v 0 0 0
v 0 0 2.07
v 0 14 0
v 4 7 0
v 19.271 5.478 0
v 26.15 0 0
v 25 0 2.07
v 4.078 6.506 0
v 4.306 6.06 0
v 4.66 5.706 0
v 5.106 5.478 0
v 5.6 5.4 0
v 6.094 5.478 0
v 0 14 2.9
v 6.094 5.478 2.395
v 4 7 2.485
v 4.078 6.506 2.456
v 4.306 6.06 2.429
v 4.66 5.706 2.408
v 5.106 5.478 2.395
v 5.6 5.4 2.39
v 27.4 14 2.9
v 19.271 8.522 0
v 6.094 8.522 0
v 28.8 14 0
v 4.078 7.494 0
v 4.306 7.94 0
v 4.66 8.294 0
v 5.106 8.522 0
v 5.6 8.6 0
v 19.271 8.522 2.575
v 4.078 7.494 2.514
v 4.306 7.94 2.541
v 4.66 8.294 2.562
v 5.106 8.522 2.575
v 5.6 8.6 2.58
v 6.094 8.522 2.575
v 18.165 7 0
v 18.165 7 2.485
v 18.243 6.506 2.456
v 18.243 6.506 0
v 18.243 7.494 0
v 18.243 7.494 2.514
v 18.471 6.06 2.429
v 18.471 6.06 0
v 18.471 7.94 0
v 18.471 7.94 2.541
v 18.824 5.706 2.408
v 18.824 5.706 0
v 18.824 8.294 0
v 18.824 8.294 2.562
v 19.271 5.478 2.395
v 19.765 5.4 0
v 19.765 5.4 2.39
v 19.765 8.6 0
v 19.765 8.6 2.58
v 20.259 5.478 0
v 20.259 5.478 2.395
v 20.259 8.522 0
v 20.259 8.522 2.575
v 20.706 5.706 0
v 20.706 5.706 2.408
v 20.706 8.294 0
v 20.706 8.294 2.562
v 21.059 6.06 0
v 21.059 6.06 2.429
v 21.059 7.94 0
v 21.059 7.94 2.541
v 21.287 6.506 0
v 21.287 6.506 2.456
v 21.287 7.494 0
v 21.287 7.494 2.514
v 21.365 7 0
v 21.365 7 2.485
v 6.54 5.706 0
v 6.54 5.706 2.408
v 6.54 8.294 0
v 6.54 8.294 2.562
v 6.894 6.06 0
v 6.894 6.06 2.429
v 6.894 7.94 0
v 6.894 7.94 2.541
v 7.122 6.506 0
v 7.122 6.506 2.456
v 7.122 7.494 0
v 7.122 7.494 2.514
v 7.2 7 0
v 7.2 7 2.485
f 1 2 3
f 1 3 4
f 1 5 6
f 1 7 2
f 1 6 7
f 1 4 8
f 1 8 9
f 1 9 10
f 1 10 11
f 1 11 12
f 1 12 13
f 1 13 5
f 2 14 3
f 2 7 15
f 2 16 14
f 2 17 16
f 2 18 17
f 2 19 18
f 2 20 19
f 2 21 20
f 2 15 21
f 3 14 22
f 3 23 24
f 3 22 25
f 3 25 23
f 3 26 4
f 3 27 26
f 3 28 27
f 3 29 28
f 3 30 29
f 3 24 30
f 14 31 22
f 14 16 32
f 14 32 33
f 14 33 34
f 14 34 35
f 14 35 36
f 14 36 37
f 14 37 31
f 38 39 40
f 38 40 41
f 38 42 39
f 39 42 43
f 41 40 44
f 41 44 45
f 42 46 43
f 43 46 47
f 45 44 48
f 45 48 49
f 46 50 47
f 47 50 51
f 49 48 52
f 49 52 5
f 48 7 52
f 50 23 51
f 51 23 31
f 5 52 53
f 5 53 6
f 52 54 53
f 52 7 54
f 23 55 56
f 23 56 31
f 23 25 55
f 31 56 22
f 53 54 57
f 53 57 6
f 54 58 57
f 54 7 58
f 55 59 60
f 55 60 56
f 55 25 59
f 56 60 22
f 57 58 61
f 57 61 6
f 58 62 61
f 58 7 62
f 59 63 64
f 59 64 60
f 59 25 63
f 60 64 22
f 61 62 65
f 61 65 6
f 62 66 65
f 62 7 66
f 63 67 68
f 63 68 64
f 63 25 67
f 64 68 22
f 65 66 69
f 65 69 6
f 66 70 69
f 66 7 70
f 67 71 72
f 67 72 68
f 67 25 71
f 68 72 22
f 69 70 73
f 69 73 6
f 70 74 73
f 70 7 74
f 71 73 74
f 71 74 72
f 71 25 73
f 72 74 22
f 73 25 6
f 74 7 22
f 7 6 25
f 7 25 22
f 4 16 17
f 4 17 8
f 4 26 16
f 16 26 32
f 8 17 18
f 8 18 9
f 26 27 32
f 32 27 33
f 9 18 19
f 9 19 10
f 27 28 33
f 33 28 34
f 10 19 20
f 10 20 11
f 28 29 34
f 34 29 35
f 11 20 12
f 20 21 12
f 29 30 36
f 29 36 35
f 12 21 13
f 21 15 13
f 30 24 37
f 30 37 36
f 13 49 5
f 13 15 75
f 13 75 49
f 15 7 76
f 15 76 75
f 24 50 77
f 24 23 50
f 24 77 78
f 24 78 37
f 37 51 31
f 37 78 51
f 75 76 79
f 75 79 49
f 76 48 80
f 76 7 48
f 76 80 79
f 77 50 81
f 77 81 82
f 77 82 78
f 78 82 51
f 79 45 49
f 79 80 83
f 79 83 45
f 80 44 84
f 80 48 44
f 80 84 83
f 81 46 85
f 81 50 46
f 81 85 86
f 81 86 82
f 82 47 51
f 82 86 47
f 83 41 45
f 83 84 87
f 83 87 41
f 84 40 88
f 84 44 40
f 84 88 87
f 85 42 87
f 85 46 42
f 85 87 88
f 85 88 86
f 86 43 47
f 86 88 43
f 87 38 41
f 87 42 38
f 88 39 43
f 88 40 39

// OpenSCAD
// file: ../parameters.scad
global_clearance = 0.5;

layer_thickness = 0.3;

//Main tube diameter - hole [mm]
main_tube_outer_diameter = 25.4;
main_tube_inner_diameter = 23.05;

// Nastavení parametrů rotoru

gliding_aggle = 14;         // tenhle úhel by se zřejmě v budoucnu měl počítat z požadované klouzavosti.

rotor_blade_AOA = 1.5;      // nastavení úhlu náběhu rotorového listu

// Rotor Auto-G2
rotor_blade_rod = true;  // generovat diru pro uhlikove tycky
rotor_blade_length = 400 - 15;   // délka rotorového listu
rotor_blade_depth = 45.5;     // hloubka rotorového listu


blade_mount_length = 30;

blade_mount_width = 17;
blade_mount_thickness = 4;
blade_mount_screw_offset = 5; // distance of first screw from rotor end

// Testovaci maly rotor

        /*
        rotor_blade_rod = false;
        rotor_blade_length = 145;   // délka rotorového listu
        rotor_blade_depth = 45.5 * (145/385);     // hloubka rotorového listu
        blade_mount_length = 20;
        blade_mount_width = 10;
        blade_mount_thickness = 4;
        */

// konec parametru pro testovaci maly rotor

rotor_height = 180;         // výška otočného kloubu rotoru nad hlavní trubkou vírníku (odhad)
rotor_blades_count = 2;
rotor_delta_angle = 12;
rotor_blade_thickness = 5.1;

rotor_blade_naca = 2412;
rotor_blade_parts_count = 3;

blade_transition_length = 10; // length of blade transition

blade_mount_screw_distance = (16.47+11.86)/2;

blade_shell_thickness = 0.5;
blade_shell_thickness_inner = 0.41;
blade_shell_thickness_wire = 0.5;
blade_infill_distance = 25;
blade_infill_overlap = 2;

//blade_rod_position = [rotor_blade_depth/4 + 5, 0, 0];
//blade_rod_position2 = [rotor_blade_depth/4 - 5, 0, 0];

//blade_rod_position = [15, 0, 0];
//blade_rod_position2 = [4, 0.3, 0];

blade_rod1_diameter = 2.58;
blade_rod2_diameter = 2.58;
blade_rod3_diameter = 2.13;

blade_rod1_position = [3.35, 0.3, 0];
blade_rod2_position = [rotor_blade_depth/4 - 4.6, 0.2, 0];
blade_rod3_position = [rotor_blade_depth/4 + 3.5, 0, 0];


rotor_head_width =  21.4;    //Rozměr 1 v nákresu
pilon_wall_thickness = 4.2;  // Rozměr 2 v nákresu
horizontal_screw_distance = 14.5;   // Rozměr 4 v nákresu
vertical_screw_distance = 12;       // rozměr 5 v nkresu
topscrew_distance_endofpilon = 5;

rotorhead_wall_thickness = 2; // sila tistenych dilu


bearing_outer_diameter = 10.2;    // Rozměr B1 v nákresu s přídavkem na toleranci otvoru
bearing_thickness = 4;        // Rozměr B2 v nákresu
//bearing_shaft_length = 19.5;    // Rozměr B3 v nákresu, Originalni hodnota 19.5
bearing_shaft_length = 20;    // Rozměr B3 v nákresu


// nastavení parametrů motoru

engine_angle = -8;
engine_diameter = 55;
engine_offset = 55;

engine_screws_radius = 15;
engine_holes_radius = (24 + 44)/4;
engine_shatf_hole_diameter = 13;

// screw length step - minimum difference in length between two types of screws
basic_screw_length = 5;

//Screw diameter and nut for M6 [mm]
M6_screw_diameter=6.5;
M6_head_diameter = 10+0.5;
M6_head_height = 6;
M6_nut_height = 4.9;
M6_nut_diameter = 11.8;
M6_nut_pocket = 10.4;

//Screw diameter and nut for M5 [mm]
M5_screw_diameter=5.5;
M5_head_height = 5;
M5_head_diameter = 13+0.5;
M5_nut_height = 4.5;
M5_nut_diameter = 9.4;
M5_nut_pocket = 8.4;

//Screw diameter and nut for M4 [mm]
M4_screw_diameter=4.5;
M4_screw_head_height = 4;
M4_nut_height = 3.2;
M4_nut_diameter = 8.4;
M4_nut_pocket = 7.5;

//Screw diameter and nut for M3 [mm]
M3_screw_diameter = 3.2;
M3_nut_height = 2.7;
M3_nut_diameter = 6.6;
M3_screw_head_height = 3;
M3_nut_pocket = 5.6;


//Screw diameter and nut for M2,5 [mm]
M2_5_screw_diameter = 2.7;
M2_5_nut_height = 2.3;
M2_5_nut_diameter = 6;
M2_5_nut_pocket = 5.1;

//Screw diameter and nut for M2 [mm]
M2_screw_diameter = 2.0;
M2_nut_height = 1.8;
M2_nut_diameter = 4.8;
M2_nut_pocket = 3.95;


blade_mount_screw = M3_screw_diameter;
blade_mount_nut = M3_nut_diameter;


//šroub servo
Servo_screw = 1.5;
Servo_nut_height = 1;
Servo_nut_diameter = 2.7;



//center_of_gravity_position = [main_pilon_position - tan(gliding_aggle)*rotor_height, 0, 0];


////podzvozek

radius_undercarriage = 25;
vzdalenost_x = tan(20) * 131;
vzdalenost_y = (131 - radius_undercarriage)/tan(79);
uhel_y = 90 - 20;
uhel_x = 90 - 79;

maximum_printable_size = 150;


////Pitotova trubice
Pitot_tube_diameter = 4.02 + 1;
Distance_hole_from_tube = 11.92;  //vzdálenost otvoru pro připevnění od samotné trubičky


////Vlečné zařízení
tow_ring_diameter = 20;
tow_ring_thickness = 5;
tow_ring_groove = 2;
tow_ring_hole_diameter = M3_screw_diameter;
// main file
include <../parameters.scad>;

module 111_1005() {
    blade_screws_distance = (16.47+11.86)/2;
    move_index = 4+blade_mount_screw/2;

    points = [
    	[0, 0, 0],
    	[26.15, 0, 0],
    	[28.8, 14, 0],
    	[0, 14, 0],
    	[0, 0, 2.07],
    	[25, 0, 2.07],
    	[27.4, 14, 2.9],
    	[0, 14, 2.9]
    ];

    faces = [
    	[0, 1, 2, 3],
    	[4, 5, 1, 0],
    	[7, 6, 5, 4],
    	[5, 6, 2, 1],
    	[6, 7, 3, 2],
    	[7, 4, 0, 3]
    ];

    difference() {
    	polyhedron(points, faces);
    	translate([move_index, 7,  -global_clearance])
            cylinder(d=blade_mount_screw, h=4, $fn=20);
    	translate([move_index+blade_screws_distance, 7,  -global_clearance])
            cylinder(d=blade_mount_screw, h=4, $fn=20);
    }
}
111_1005();
